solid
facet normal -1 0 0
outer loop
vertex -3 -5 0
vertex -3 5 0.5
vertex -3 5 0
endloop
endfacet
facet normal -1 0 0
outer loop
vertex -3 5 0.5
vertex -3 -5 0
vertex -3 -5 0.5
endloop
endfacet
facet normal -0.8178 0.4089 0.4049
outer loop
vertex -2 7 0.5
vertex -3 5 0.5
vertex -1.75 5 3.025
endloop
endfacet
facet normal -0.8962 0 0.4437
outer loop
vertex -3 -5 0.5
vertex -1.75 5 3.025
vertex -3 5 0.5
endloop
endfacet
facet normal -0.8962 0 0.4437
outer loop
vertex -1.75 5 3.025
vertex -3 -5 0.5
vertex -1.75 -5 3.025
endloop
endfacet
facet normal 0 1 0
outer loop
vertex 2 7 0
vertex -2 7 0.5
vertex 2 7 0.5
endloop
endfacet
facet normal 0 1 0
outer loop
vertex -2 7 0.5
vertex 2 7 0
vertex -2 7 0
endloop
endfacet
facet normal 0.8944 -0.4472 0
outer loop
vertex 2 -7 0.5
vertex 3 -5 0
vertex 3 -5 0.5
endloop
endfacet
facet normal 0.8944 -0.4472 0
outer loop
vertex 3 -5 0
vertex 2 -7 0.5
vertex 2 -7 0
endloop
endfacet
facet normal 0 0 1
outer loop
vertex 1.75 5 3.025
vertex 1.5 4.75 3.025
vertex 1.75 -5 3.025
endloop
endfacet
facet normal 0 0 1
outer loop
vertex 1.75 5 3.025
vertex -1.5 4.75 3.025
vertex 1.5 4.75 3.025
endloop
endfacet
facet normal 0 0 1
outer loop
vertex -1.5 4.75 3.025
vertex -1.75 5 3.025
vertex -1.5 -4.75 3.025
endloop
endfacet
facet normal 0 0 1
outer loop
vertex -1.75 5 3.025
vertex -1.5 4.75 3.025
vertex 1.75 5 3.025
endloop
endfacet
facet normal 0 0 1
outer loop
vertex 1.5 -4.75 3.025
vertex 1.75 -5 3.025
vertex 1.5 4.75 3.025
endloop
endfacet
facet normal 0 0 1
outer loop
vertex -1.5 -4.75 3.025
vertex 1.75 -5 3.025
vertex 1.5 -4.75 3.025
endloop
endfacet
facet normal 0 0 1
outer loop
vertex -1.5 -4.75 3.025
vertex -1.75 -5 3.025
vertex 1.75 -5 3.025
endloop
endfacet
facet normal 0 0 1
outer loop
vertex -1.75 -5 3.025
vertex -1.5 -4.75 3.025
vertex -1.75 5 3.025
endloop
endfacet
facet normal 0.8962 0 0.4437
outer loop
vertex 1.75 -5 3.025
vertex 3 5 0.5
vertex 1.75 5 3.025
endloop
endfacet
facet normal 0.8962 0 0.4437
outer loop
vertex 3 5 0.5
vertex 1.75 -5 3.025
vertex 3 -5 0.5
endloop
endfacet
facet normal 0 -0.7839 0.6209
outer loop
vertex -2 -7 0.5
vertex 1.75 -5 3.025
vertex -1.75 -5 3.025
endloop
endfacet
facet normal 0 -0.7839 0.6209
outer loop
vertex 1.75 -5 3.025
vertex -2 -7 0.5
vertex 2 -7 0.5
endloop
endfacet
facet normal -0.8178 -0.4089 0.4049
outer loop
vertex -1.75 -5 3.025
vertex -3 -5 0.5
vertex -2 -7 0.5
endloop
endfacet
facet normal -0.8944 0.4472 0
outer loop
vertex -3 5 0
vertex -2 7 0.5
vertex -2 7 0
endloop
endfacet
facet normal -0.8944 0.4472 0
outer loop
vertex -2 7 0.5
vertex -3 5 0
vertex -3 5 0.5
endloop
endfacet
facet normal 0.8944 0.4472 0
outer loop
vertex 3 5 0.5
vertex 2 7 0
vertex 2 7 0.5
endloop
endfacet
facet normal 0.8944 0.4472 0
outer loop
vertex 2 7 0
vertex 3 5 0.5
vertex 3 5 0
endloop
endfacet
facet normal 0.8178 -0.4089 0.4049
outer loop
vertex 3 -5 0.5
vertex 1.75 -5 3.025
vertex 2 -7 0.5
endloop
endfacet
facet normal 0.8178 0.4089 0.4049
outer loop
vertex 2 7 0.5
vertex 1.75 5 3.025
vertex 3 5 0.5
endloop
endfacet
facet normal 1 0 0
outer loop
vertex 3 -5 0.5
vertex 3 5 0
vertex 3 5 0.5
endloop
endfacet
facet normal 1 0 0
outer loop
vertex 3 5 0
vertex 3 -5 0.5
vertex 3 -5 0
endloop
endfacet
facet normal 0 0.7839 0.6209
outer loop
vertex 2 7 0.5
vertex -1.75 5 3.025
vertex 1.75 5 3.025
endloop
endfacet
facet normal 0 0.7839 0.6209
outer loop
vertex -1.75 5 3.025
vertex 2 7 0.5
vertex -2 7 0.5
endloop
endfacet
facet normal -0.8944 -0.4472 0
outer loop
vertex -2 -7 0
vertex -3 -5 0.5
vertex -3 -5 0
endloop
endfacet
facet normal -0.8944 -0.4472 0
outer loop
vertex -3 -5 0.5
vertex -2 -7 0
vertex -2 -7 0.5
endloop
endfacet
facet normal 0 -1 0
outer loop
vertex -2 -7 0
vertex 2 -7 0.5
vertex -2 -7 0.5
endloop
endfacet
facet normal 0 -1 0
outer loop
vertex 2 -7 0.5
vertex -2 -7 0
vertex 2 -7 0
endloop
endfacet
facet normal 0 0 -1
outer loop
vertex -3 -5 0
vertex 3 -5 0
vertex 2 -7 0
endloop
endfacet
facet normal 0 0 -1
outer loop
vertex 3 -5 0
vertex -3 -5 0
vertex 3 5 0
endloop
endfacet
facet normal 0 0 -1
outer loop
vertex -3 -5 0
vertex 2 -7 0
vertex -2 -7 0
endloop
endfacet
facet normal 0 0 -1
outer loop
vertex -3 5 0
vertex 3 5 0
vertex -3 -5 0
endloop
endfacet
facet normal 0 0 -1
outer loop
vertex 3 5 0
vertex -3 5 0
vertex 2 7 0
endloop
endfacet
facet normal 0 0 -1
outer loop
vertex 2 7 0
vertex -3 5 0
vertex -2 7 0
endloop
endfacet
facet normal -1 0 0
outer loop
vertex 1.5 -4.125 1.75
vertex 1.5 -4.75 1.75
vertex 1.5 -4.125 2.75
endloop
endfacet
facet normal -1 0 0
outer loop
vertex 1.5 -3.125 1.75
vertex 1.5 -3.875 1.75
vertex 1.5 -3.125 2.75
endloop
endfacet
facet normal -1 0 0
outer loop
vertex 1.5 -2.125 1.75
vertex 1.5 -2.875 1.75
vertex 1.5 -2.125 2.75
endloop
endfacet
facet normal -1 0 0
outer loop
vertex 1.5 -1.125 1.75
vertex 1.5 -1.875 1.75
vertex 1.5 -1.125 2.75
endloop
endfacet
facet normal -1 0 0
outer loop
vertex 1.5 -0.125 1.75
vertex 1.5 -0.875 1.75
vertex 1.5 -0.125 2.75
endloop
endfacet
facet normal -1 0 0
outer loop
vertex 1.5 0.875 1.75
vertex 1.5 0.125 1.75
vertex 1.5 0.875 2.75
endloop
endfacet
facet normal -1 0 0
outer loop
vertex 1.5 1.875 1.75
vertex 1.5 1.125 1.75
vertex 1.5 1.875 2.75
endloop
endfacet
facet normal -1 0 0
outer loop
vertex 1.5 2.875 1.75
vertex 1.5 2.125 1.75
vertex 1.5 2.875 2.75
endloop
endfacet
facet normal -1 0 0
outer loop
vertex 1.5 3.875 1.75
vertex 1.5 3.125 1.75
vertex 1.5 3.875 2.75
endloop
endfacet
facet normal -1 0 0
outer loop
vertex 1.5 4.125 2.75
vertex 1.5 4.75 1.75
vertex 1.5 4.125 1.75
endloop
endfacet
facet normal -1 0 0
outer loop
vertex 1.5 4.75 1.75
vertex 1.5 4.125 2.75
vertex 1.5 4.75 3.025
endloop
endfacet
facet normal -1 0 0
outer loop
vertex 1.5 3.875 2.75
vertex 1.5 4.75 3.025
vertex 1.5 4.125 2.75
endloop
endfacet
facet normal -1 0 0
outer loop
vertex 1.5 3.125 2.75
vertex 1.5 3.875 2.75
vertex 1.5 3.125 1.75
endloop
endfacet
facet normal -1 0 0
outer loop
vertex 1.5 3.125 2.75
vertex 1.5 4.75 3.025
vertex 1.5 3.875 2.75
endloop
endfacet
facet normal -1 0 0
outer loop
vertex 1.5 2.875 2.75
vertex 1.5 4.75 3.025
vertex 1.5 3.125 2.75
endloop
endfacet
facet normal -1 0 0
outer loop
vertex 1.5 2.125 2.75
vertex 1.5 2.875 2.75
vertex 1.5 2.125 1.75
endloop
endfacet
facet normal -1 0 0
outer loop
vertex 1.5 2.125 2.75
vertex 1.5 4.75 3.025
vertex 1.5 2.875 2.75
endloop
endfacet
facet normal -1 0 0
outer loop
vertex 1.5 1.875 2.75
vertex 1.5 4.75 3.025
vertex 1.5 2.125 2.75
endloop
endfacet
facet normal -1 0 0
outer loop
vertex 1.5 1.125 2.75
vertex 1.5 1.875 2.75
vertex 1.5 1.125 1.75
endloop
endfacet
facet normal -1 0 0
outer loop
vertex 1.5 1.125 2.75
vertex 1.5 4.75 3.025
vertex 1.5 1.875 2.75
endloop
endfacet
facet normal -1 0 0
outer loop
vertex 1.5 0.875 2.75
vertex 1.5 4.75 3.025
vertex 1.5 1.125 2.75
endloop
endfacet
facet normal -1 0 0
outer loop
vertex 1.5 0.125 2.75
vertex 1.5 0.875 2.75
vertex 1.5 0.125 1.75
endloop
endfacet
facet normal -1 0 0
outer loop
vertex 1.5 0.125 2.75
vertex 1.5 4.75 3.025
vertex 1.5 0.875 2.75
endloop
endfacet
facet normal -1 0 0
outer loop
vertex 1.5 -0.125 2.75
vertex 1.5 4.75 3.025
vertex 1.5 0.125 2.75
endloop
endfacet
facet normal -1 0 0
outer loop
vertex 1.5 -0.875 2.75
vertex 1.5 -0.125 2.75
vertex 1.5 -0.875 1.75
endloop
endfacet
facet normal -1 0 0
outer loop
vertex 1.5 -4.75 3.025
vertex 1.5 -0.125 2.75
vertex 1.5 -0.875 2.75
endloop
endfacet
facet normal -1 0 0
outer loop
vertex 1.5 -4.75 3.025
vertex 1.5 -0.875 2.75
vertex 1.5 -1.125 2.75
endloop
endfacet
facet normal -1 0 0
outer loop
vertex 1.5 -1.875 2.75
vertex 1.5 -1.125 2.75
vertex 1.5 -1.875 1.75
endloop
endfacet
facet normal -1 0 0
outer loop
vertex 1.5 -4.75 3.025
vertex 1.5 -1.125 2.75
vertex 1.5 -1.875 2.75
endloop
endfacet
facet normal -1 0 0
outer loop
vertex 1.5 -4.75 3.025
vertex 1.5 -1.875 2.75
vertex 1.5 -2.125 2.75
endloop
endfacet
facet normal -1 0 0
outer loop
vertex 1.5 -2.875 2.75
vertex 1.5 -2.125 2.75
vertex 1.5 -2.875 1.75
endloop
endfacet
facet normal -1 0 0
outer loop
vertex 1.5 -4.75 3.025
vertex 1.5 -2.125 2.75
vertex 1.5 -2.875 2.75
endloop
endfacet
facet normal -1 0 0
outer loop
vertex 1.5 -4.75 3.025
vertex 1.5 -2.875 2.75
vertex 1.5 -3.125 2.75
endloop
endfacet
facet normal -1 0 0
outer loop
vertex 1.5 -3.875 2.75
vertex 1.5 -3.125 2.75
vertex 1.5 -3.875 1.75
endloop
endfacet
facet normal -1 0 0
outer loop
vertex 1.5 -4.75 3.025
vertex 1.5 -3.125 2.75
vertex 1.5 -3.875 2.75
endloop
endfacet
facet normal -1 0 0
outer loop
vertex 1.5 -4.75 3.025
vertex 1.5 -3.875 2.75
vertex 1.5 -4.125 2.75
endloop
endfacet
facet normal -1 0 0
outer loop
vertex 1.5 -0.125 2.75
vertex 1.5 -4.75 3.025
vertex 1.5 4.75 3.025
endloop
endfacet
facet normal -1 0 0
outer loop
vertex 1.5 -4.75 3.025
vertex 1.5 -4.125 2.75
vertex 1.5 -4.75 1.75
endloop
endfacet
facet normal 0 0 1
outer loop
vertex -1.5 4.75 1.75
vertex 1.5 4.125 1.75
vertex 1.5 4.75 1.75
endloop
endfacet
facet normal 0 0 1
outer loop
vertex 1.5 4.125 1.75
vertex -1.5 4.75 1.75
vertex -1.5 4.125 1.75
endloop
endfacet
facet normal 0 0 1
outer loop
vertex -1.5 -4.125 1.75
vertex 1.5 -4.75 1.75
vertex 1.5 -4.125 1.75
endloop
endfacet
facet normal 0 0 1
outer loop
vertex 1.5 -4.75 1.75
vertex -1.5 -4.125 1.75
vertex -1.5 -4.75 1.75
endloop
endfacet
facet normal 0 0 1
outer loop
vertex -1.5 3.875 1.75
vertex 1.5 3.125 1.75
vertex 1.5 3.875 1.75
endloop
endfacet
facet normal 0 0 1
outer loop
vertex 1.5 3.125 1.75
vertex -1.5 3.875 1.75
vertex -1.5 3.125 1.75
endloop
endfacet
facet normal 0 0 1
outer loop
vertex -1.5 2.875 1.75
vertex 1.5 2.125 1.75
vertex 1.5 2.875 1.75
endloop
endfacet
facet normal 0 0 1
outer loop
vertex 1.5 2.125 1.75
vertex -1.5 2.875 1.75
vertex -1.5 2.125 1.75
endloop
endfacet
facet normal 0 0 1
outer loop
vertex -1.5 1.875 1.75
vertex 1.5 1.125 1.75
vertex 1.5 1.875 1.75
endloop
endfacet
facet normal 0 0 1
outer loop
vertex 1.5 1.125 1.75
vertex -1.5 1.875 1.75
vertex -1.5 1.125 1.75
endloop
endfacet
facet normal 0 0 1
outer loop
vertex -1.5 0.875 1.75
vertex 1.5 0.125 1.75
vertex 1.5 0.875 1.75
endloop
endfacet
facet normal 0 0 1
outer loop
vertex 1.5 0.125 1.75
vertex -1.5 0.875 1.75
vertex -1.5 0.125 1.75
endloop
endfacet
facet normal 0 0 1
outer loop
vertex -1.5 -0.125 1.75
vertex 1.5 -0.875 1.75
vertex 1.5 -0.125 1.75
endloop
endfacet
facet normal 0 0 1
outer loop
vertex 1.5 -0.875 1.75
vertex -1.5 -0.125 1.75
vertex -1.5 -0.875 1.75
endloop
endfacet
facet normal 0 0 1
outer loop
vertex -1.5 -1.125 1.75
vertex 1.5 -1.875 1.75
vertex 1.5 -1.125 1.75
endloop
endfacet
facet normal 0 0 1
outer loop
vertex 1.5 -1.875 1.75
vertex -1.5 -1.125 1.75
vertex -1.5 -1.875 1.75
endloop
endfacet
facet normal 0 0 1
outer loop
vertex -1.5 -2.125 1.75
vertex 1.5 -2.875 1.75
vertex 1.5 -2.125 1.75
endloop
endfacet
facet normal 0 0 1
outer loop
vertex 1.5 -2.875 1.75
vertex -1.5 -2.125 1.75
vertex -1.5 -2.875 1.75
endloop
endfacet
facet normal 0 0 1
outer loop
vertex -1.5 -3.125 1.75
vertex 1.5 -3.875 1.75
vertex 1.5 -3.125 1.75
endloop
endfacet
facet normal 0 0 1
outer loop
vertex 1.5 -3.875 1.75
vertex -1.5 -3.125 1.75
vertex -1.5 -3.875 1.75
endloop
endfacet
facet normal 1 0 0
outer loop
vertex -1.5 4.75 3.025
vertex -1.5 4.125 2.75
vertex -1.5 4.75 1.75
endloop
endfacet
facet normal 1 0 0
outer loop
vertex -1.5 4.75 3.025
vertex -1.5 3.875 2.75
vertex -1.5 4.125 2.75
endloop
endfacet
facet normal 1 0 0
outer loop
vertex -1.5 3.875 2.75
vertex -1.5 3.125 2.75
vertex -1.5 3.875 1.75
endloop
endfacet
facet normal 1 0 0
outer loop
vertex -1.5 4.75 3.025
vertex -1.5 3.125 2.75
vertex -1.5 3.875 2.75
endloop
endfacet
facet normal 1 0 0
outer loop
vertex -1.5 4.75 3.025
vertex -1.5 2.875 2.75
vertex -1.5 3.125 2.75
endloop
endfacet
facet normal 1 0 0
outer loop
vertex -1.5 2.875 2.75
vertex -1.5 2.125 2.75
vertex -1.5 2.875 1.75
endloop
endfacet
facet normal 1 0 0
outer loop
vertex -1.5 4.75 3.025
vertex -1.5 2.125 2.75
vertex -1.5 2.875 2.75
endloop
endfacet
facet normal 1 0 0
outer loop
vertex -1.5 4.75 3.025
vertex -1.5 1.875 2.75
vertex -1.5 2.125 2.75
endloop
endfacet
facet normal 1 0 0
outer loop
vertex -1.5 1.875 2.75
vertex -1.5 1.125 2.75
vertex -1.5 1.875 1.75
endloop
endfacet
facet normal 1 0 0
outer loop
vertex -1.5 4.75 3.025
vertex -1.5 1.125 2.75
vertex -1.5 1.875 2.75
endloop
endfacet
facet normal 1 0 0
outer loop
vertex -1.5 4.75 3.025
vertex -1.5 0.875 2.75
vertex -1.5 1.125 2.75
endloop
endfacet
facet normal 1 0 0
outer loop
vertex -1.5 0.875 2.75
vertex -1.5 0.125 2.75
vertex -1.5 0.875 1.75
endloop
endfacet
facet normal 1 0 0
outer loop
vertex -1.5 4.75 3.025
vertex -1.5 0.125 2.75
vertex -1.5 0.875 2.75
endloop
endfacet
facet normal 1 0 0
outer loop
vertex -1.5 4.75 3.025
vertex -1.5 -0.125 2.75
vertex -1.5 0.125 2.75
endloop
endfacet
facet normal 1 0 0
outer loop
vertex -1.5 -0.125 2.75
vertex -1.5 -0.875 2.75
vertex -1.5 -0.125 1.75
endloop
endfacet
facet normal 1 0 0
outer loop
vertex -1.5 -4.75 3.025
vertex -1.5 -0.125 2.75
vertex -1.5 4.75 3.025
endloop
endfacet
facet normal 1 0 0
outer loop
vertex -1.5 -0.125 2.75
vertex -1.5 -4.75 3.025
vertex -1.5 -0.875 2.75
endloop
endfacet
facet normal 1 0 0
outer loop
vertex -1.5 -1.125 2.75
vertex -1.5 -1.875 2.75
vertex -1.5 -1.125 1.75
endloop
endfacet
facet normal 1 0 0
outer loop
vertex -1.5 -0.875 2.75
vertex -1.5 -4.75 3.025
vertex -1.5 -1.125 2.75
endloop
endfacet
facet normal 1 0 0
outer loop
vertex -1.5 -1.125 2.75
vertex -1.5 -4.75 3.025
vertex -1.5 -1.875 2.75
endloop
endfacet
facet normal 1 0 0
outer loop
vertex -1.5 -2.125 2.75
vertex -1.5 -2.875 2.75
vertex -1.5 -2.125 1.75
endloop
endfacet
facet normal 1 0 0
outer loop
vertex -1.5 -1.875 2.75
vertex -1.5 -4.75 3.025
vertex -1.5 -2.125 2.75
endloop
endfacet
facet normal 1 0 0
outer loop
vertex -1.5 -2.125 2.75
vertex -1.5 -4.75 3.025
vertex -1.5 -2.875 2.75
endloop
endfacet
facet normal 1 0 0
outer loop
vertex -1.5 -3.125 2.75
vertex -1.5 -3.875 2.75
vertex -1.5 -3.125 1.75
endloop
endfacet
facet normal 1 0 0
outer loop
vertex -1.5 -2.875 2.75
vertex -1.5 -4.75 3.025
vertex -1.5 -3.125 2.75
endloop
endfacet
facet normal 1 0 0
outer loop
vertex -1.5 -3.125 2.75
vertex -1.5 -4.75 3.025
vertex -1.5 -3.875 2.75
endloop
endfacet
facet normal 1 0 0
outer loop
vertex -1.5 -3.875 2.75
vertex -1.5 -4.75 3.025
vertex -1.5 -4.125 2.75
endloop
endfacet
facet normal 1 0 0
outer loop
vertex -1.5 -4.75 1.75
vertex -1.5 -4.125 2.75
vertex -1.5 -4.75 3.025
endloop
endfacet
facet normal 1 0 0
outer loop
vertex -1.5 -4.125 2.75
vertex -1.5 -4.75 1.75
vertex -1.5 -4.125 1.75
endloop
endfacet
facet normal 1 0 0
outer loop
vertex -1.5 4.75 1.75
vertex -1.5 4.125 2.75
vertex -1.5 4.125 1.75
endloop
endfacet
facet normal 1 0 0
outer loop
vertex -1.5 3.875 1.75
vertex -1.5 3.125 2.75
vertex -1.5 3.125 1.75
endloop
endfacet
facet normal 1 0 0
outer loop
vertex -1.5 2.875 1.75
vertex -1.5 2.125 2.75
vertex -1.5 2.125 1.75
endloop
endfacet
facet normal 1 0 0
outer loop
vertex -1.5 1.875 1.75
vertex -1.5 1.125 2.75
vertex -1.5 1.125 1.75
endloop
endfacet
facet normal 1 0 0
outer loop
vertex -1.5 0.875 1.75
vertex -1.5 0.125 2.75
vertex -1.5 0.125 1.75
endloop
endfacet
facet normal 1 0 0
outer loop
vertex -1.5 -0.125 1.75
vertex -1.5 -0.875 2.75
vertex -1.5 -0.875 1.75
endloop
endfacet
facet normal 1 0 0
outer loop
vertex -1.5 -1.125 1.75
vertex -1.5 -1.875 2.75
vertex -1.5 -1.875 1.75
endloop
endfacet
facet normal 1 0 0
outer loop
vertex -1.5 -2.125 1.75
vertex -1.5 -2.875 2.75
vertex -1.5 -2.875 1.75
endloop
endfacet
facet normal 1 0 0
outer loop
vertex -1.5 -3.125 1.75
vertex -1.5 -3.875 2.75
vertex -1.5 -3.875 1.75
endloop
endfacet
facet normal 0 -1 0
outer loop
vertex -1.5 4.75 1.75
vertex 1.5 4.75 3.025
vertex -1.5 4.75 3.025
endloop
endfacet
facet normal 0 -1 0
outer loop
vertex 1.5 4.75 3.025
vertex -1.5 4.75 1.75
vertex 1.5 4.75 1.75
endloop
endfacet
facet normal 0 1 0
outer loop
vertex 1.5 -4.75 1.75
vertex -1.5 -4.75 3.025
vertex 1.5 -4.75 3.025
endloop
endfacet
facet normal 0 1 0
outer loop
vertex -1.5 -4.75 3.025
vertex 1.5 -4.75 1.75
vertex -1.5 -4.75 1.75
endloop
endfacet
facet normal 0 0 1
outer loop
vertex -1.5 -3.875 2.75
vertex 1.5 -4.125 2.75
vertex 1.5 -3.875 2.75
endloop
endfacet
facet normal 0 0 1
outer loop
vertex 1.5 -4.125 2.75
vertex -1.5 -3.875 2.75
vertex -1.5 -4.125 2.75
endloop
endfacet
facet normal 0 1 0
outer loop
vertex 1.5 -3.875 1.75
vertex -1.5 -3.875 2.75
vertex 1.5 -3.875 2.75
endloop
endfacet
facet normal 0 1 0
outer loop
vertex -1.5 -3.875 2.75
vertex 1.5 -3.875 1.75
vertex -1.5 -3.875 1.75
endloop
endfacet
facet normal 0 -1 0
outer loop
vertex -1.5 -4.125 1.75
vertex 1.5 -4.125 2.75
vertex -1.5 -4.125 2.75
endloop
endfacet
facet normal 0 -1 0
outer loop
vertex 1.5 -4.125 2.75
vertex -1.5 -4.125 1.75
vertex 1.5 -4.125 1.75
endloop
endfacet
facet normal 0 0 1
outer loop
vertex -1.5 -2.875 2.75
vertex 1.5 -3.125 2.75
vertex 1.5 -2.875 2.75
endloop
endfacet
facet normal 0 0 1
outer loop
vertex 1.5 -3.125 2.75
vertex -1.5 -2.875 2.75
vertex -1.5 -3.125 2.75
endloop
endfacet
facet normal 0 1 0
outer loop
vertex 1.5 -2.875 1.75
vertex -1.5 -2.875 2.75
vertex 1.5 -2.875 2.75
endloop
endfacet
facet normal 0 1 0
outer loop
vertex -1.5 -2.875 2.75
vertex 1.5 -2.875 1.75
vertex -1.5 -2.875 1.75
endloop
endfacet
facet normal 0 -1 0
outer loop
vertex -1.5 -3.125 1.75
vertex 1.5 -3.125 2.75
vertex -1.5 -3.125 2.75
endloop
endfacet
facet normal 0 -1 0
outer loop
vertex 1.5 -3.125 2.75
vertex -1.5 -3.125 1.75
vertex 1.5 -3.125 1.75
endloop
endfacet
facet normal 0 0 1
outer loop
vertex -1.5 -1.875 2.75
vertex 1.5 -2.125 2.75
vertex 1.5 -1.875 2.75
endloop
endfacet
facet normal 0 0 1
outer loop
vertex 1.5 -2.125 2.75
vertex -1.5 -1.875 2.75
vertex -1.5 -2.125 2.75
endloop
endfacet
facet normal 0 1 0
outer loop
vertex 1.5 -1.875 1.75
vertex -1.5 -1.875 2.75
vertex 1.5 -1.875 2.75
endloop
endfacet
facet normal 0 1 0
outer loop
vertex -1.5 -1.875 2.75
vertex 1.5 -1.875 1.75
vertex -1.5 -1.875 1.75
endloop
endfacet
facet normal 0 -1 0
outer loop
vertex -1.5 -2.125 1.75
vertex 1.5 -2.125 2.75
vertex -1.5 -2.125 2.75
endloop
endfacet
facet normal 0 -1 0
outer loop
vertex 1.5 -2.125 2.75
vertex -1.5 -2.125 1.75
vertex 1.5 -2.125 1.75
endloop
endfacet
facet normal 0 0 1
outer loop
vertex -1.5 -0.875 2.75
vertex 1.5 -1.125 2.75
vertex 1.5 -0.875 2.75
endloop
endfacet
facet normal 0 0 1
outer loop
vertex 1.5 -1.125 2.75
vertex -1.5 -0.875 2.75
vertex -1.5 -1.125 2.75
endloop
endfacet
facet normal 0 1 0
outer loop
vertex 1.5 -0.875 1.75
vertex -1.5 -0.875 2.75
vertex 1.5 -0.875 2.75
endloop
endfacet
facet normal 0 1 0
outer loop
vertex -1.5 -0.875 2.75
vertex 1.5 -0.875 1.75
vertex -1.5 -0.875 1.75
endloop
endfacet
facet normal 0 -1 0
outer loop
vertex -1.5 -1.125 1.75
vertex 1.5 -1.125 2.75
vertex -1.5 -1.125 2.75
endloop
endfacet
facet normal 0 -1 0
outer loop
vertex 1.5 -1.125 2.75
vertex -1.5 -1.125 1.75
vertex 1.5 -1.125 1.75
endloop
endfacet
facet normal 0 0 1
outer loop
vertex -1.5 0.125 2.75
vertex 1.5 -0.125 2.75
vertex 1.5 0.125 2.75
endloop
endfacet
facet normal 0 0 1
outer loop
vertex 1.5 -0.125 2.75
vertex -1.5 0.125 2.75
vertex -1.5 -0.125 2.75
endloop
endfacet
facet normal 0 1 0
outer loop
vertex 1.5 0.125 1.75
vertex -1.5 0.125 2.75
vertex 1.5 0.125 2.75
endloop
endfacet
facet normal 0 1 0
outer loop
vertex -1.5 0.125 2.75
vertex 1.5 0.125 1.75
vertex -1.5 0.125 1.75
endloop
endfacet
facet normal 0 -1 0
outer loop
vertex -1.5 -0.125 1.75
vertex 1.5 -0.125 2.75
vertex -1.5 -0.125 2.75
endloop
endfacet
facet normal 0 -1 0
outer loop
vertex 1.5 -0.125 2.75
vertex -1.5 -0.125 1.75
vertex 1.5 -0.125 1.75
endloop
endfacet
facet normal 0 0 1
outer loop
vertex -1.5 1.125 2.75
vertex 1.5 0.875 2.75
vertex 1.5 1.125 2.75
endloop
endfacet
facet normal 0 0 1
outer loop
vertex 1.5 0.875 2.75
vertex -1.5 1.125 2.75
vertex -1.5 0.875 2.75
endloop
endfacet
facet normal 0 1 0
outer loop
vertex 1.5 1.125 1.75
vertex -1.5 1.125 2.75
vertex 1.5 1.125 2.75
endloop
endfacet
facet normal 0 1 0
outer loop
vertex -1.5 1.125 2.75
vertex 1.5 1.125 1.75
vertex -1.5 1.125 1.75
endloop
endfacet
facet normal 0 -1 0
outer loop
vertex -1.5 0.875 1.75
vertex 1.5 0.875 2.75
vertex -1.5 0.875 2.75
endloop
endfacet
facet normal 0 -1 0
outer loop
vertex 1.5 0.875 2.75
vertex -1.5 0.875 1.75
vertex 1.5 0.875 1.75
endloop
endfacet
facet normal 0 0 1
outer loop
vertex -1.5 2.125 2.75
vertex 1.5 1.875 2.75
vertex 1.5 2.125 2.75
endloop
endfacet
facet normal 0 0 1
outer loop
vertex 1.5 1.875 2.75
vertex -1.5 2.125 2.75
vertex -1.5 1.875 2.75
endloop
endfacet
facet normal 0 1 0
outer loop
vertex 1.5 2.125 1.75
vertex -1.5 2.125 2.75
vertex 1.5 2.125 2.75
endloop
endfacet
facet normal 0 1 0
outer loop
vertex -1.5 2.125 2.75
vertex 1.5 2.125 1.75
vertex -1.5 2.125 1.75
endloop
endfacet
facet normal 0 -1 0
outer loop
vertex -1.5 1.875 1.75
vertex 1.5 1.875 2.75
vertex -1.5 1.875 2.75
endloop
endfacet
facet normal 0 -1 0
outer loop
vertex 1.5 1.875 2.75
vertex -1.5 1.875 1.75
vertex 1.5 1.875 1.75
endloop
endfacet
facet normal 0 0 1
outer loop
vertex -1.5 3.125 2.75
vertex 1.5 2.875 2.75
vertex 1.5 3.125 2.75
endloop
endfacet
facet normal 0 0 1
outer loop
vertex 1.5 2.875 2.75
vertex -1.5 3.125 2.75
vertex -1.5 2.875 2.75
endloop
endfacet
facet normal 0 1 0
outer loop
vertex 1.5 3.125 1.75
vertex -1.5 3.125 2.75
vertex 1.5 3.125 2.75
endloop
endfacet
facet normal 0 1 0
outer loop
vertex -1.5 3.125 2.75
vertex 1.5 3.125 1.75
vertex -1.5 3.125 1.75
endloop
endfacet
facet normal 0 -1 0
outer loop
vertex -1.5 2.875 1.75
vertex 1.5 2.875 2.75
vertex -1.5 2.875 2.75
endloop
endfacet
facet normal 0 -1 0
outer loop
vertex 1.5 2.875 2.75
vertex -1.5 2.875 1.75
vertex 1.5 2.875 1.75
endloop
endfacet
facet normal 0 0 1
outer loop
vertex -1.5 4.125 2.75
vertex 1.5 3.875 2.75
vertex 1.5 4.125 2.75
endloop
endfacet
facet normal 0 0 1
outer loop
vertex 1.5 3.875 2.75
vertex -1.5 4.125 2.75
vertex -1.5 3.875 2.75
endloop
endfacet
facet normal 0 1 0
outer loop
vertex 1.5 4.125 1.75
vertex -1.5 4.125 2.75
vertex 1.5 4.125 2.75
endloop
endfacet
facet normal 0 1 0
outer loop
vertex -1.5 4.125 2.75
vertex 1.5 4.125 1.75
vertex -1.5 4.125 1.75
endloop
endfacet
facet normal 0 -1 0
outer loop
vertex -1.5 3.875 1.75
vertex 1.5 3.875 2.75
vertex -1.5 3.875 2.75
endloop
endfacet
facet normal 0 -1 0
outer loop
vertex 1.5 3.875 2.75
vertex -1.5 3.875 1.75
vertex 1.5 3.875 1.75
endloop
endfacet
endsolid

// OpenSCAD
//cubeの基本部分
module cube_basic(tx, ty, tz, cx, cy, cz){
	translate([tx, ty, tz]){
		cube(size=[cx, cy, cz], center=true);
	}	
}

px=3;
py=5;
difference(){
	//土台部分
	hull(){
		cube_basic(0, 0, 3, 3.5, 10, 0.05);
	    linear_extrude(0.5){
			polygon(points=[[-px, py], [-2, 7], [2, 7], [px, py], [px, -py], [2, -7], [-2, -7], [-px, -py]]); //時計回り
		}
	}
	//空洞部分
	cube_basic(0, 0, 3.5, 3, 9.5, 3.5);
}

//フィン部分
for(y=[-4:1:4]){
	cube_basic(0, y, 1.5, 3, 0.25, 2.5);
}
